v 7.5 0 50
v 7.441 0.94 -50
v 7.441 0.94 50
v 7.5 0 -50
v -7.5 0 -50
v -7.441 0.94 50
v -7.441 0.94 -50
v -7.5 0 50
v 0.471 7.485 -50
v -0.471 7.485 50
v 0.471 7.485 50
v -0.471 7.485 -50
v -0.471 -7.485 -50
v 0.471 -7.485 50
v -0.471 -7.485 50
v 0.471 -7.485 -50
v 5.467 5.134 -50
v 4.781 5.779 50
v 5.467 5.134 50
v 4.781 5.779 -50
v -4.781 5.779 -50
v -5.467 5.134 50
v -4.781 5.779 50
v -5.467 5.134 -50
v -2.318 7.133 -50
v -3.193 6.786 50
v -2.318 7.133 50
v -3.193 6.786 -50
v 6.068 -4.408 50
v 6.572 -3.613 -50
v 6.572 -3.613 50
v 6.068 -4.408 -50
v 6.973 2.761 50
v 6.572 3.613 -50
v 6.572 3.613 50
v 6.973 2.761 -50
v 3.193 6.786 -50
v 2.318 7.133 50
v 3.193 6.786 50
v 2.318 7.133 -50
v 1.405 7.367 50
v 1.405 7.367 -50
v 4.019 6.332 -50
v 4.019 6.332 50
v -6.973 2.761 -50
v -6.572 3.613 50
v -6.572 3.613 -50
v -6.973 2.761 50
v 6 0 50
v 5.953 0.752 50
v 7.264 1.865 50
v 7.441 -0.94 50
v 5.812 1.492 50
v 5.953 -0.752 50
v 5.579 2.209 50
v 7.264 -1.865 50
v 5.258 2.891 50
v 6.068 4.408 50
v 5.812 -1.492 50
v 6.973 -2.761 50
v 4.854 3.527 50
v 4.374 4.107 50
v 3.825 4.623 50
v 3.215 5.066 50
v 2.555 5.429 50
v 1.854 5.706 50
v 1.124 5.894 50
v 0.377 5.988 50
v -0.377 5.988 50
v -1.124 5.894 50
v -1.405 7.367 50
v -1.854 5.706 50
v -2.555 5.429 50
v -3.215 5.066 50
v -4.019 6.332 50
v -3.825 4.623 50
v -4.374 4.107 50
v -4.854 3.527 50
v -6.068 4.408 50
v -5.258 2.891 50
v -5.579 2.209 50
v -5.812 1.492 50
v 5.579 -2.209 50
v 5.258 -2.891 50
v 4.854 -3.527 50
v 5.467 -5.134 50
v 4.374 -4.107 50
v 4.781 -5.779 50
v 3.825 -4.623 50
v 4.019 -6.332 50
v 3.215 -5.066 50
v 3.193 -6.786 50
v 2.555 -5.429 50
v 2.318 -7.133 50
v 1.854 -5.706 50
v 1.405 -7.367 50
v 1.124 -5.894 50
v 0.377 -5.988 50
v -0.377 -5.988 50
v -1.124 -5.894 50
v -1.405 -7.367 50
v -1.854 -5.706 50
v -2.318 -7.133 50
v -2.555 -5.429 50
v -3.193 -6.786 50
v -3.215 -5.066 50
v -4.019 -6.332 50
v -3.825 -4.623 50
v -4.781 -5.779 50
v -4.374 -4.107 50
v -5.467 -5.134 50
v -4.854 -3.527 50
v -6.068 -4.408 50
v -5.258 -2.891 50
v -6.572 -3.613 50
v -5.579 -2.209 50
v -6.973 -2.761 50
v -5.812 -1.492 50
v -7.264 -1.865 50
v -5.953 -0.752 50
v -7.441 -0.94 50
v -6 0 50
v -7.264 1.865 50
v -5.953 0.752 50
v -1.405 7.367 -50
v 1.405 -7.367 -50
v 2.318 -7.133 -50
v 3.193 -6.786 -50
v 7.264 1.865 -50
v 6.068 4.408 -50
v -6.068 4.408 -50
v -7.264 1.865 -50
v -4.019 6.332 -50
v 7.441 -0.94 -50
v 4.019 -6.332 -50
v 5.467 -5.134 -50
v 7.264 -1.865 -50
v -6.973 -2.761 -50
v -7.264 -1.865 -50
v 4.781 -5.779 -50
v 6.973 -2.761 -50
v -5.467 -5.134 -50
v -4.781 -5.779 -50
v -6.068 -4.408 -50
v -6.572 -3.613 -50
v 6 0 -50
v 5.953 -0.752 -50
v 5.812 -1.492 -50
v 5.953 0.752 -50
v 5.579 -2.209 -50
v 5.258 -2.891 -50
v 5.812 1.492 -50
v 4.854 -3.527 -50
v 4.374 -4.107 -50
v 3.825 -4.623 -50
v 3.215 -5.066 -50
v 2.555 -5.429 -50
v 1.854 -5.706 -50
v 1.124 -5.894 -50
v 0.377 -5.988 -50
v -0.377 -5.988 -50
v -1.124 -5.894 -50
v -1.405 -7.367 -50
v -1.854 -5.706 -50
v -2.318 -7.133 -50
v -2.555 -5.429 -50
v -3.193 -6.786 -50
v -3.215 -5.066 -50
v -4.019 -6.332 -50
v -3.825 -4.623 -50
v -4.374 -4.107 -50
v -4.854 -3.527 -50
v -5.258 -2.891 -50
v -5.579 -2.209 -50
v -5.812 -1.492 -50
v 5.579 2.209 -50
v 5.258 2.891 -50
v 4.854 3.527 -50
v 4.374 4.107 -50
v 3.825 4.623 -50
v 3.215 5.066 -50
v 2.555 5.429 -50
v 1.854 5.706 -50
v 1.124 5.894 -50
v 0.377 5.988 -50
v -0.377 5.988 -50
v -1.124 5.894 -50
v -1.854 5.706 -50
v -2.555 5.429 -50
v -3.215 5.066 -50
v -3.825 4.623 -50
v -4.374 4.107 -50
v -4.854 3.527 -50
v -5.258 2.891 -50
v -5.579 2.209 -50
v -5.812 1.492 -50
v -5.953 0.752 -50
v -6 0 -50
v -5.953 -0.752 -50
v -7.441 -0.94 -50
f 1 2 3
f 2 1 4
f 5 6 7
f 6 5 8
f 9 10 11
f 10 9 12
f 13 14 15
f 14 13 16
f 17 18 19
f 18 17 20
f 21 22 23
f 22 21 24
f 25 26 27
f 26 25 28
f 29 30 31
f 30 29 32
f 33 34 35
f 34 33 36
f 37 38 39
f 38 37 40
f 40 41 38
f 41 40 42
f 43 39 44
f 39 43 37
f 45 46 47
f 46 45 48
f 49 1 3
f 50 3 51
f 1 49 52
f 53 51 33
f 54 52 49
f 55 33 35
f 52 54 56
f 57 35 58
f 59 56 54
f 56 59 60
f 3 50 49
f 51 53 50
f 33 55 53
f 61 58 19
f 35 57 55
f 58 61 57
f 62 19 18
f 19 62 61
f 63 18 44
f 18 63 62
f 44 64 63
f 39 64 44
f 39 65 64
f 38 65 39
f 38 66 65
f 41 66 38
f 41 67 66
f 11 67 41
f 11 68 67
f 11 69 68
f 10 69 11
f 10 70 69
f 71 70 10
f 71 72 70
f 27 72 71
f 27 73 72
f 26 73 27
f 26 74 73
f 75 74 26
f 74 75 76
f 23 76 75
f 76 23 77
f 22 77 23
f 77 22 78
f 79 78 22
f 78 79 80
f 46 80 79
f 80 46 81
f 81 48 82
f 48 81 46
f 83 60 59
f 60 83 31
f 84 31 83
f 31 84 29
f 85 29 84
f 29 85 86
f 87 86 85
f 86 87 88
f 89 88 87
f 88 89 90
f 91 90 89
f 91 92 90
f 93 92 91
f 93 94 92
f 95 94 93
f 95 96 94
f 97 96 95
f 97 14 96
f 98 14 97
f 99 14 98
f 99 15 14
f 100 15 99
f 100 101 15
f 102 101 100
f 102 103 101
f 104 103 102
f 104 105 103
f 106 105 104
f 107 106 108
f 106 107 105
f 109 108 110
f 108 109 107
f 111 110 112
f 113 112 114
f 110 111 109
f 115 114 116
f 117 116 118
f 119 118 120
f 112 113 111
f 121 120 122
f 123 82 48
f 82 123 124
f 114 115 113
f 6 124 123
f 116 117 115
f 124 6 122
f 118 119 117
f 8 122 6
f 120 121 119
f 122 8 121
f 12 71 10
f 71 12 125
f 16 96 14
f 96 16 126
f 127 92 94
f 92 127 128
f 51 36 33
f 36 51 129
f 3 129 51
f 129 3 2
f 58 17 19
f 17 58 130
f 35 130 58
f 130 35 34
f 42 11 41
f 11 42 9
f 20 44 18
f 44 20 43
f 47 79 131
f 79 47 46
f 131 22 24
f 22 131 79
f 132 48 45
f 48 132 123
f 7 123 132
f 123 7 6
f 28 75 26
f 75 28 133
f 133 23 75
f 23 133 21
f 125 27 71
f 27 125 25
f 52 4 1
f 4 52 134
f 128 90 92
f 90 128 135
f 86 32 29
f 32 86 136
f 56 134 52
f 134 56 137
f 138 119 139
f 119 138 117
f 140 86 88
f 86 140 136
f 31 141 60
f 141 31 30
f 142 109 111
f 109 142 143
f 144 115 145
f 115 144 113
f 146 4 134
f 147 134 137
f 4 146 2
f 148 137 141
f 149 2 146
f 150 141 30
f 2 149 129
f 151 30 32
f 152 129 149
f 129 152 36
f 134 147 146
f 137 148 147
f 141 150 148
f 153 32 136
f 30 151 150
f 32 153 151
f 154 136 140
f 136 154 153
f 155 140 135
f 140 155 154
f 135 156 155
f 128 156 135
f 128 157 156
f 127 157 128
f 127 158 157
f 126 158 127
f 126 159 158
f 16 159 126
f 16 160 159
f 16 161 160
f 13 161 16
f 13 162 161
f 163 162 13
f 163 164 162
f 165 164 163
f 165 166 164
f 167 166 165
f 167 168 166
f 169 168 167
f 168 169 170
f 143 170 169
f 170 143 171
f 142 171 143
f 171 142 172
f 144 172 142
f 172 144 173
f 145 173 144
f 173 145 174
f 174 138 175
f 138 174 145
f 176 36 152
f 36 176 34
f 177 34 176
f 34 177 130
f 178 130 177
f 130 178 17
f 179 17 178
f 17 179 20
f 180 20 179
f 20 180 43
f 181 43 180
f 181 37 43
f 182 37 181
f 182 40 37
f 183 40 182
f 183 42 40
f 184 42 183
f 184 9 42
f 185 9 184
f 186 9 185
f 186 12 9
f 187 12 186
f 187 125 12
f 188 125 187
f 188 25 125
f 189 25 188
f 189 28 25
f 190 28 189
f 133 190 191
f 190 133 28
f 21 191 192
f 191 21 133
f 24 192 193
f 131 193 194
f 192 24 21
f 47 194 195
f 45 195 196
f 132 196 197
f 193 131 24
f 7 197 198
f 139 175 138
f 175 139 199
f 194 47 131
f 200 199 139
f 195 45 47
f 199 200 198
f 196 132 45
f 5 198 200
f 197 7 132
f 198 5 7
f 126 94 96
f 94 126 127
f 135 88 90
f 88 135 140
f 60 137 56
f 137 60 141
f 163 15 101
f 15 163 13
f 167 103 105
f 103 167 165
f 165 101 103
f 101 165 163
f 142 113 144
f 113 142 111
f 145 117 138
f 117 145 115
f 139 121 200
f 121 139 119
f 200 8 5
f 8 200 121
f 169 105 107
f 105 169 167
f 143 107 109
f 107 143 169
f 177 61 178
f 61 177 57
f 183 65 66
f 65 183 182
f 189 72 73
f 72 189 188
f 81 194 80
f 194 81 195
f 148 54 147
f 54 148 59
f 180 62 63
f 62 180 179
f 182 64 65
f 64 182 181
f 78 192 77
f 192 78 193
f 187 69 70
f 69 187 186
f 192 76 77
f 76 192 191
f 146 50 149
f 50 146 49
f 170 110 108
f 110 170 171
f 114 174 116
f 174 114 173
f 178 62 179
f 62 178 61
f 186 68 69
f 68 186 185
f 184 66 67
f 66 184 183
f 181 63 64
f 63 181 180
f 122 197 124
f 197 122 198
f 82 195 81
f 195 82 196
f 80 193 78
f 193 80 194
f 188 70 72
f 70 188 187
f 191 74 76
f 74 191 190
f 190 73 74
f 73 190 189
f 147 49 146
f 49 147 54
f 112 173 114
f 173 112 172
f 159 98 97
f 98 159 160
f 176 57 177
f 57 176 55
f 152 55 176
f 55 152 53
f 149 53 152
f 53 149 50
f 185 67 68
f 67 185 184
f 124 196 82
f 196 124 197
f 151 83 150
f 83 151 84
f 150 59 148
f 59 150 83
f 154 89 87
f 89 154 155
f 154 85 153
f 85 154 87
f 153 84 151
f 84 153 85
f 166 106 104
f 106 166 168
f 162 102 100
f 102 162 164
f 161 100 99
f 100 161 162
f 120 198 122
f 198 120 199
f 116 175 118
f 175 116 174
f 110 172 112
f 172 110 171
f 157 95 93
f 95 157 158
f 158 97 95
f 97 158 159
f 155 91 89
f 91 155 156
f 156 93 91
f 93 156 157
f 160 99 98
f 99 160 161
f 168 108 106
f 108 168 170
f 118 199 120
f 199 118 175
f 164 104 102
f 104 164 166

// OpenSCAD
$fn = 50;


difference() {
	union() {
		translate(v = [0, 0, -50.0000000000]) {
			cylinder(h = 100, r = 7.5000000000);
		}
	}
	union() {
		translate(v = [0, 0, -100.0000000000]) {
			cylinder(h = 200, r = 6);
		}
	}
}
